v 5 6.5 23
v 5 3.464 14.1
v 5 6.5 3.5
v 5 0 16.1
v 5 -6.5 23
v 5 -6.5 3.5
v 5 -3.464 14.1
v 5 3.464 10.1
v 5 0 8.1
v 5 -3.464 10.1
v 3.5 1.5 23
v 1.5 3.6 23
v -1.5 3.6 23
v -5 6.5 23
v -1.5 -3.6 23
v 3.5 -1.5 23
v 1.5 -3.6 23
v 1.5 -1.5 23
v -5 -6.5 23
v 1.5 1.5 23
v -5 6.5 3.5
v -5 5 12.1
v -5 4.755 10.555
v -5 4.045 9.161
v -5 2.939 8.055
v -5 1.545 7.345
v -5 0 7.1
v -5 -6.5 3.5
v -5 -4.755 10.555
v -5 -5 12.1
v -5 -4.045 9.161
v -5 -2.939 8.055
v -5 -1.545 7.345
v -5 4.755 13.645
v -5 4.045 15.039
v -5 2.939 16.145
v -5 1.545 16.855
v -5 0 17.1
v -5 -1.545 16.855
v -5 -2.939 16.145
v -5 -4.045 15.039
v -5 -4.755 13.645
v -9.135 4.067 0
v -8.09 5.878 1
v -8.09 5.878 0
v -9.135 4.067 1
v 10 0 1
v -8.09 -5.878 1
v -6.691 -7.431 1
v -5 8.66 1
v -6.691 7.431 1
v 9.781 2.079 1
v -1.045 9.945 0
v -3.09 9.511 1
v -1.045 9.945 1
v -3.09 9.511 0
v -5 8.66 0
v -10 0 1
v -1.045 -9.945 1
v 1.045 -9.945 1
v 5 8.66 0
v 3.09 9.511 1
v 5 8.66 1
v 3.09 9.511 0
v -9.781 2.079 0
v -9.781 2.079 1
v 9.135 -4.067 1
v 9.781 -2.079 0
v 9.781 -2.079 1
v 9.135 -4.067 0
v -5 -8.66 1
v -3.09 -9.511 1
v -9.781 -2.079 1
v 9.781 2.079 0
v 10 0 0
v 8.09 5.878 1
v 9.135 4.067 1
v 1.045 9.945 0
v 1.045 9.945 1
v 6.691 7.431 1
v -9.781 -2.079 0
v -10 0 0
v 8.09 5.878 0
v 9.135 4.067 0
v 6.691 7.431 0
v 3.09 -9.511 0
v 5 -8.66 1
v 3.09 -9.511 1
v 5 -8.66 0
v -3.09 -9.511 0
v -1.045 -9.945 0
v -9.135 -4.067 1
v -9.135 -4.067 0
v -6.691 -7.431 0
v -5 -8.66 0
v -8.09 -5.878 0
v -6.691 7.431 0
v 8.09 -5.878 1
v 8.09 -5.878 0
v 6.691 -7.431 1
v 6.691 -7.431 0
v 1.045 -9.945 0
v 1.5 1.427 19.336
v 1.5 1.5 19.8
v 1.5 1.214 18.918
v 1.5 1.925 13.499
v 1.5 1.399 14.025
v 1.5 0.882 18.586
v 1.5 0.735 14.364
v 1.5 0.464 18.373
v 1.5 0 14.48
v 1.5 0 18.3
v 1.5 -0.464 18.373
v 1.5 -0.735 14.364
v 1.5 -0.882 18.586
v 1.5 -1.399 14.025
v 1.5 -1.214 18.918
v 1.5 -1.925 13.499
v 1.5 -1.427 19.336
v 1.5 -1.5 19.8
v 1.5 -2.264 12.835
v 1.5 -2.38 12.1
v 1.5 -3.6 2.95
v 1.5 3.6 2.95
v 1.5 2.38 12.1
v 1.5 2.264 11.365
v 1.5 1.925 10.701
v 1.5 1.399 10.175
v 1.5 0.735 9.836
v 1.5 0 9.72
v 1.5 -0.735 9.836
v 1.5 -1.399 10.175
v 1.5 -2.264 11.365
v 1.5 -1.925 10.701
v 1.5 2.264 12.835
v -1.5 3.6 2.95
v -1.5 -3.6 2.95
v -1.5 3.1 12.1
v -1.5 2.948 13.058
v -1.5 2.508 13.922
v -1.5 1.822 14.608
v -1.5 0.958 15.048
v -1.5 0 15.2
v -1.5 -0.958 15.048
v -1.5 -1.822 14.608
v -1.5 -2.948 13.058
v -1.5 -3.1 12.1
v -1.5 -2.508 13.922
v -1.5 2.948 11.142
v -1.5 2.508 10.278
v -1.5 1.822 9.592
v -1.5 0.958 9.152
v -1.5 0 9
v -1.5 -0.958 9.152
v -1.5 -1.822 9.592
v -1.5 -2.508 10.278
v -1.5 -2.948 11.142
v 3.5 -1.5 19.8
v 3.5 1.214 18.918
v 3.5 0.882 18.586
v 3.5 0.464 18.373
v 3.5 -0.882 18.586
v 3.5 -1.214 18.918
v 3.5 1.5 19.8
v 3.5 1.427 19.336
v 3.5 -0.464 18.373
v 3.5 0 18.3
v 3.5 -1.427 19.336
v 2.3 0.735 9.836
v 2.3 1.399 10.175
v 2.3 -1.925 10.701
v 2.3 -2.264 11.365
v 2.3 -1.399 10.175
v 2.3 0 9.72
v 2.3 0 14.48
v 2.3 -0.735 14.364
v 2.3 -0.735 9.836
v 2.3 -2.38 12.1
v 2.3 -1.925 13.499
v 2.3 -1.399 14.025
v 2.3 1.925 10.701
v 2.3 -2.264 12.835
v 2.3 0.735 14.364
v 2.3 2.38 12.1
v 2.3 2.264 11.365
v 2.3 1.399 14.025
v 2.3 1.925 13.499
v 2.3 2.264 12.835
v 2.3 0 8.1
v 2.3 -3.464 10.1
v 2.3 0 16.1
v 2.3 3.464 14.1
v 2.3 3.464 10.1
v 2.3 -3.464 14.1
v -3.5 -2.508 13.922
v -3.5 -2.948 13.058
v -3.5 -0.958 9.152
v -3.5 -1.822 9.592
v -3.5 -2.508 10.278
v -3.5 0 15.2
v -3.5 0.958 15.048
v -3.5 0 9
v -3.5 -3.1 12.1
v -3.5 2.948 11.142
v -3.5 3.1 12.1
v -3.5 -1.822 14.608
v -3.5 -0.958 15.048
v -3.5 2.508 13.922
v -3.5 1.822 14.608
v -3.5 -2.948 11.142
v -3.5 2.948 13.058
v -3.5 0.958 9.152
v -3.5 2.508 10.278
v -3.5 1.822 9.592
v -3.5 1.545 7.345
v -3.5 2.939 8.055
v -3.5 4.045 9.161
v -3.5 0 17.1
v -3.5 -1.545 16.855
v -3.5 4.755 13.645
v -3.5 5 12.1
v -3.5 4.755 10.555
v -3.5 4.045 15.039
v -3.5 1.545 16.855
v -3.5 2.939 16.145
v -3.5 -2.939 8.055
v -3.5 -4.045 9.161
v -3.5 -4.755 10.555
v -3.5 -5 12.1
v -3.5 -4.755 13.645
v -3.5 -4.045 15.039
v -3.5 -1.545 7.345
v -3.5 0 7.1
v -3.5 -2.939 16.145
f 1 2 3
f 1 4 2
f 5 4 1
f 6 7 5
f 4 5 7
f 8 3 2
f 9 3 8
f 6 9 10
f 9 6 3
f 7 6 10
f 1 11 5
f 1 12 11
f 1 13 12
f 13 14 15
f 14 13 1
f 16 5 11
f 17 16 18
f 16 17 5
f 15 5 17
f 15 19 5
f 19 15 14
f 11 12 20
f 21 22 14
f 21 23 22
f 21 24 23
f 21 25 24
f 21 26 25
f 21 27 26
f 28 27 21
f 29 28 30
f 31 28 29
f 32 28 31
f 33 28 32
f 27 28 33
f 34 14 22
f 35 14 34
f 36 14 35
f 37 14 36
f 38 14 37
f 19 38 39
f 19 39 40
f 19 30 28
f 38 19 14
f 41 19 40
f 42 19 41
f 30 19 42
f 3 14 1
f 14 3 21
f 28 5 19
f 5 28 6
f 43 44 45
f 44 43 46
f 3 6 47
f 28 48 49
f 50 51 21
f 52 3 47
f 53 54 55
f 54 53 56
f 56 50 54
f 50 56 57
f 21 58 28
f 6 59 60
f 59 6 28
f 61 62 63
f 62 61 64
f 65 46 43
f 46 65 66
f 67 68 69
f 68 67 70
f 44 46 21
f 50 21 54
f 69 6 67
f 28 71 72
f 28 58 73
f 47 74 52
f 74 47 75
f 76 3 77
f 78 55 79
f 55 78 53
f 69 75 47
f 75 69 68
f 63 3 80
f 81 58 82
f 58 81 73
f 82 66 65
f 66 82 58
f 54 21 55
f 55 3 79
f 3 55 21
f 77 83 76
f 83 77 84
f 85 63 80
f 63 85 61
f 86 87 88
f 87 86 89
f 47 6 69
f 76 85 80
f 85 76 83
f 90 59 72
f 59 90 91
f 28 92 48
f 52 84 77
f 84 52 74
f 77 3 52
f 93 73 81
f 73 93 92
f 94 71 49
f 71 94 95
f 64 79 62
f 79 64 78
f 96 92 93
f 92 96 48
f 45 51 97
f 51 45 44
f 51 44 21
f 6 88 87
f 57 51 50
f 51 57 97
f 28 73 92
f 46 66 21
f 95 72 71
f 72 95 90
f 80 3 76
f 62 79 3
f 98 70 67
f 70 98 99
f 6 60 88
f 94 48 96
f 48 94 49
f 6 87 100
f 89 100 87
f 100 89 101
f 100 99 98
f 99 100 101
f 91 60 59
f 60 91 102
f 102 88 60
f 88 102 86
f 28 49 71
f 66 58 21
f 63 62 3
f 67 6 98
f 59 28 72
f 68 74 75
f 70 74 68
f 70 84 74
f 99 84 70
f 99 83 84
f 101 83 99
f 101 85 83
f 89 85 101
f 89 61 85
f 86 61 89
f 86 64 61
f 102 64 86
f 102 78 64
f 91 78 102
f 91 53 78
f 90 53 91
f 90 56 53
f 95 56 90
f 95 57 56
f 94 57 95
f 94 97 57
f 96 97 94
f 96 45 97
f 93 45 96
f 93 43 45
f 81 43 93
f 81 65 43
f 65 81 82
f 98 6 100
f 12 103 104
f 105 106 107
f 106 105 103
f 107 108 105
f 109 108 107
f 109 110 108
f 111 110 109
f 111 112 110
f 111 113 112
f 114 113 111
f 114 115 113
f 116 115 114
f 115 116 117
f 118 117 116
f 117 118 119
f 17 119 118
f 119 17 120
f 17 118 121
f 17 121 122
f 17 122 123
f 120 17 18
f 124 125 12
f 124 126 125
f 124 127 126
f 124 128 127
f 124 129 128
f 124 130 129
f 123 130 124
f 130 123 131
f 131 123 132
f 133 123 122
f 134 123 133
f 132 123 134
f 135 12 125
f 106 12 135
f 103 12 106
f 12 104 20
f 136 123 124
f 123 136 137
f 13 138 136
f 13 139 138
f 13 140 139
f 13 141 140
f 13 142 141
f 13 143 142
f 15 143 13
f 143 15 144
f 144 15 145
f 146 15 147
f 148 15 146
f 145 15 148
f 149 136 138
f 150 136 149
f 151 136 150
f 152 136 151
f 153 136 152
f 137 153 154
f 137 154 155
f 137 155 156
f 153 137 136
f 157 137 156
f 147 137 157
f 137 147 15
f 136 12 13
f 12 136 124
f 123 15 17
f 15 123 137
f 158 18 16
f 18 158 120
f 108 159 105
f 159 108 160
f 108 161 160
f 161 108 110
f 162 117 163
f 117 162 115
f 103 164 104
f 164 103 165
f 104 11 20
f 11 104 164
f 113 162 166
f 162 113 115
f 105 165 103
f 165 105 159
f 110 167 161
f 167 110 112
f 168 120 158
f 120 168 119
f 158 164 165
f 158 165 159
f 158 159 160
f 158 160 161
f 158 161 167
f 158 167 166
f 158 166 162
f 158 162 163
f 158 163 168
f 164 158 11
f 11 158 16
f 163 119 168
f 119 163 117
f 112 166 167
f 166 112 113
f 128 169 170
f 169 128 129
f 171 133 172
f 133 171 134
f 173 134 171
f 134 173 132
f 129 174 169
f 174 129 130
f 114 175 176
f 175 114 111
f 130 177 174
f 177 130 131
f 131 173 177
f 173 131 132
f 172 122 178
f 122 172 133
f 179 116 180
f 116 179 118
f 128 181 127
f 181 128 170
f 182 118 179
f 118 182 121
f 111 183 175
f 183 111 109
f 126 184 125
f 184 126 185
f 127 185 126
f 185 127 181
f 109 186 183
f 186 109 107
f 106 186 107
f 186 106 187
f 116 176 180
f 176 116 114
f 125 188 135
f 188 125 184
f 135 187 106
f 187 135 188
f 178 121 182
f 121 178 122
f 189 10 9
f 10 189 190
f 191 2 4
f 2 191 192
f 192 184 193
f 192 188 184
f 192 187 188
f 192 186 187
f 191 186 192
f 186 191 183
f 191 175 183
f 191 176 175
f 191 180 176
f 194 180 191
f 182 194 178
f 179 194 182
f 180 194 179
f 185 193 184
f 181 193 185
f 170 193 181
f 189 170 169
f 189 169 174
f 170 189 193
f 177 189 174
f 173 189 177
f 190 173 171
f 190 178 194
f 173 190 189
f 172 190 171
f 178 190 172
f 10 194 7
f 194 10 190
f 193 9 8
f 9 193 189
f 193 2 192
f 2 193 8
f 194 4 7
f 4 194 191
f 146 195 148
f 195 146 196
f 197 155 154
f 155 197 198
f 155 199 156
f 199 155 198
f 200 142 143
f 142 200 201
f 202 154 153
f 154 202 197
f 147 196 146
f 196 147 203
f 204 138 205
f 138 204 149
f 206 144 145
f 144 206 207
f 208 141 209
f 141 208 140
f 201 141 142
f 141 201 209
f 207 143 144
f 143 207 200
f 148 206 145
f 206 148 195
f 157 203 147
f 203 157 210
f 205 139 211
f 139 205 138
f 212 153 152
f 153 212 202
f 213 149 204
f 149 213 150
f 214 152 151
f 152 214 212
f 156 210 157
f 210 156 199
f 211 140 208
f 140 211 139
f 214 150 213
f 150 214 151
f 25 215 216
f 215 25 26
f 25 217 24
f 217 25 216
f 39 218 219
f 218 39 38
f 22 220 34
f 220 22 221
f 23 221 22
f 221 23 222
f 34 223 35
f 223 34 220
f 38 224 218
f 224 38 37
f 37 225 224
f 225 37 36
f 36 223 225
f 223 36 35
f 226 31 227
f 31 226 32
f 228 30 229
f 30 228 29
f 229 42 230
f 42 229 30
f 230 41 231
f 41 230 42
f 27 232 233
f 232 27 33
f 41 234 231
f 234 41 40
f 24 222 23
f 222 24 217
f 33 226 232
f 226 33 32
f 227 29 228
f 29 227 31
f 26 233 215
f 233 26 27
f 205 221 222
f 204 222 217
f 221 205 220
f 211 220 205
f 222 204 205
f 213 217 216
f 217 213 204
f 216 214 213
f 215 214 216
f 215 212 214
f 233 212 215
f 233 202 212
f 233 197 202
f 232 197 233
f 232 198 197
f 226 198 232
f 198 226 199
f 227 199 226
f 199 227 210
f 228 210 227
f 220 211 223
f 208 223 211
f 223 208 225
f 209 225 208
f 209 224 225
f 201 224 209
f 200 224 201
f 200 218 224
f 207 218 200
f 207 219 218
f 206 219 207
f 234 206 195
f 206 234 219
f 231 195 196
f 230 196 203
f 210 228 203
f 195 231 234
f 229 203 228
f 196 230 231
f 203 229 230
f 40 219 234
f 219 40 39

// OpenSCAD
//messurments of the metal shaft
//shaft=[2.5,7,225] //The metal part;
shaft=[3,7.2,225];   //The hole
base_interface=[10,13,20]; //block of plastic to be printed that holds the shaft.
//The two bolt holes
shaft_hole=4.75;
shaft_hole_ofset=9.1;
// The retaining pin 
shaft_pin=3;
shaft_pin_ofset=16.8;

bolt_head=8;
bolt_shaft=3.8; //maybe don't use this to avoid artifacts
bolt_offset=0.8; //amount of plastic between bolt head and shaft

screw_shaft_dia=6.2;
screw_head_dia=10;
screw_shaft_length=2;
screw_wings_dia=17;

pad=[3, 20]; //thickness, diameter.

module Shaft(){ //CAD model of the metal black shaft of the clamp. The key pin is given as a block to cut a kay way.
difference() {
  cube([shaft[0],shaft[1],shaft[2]+0.1], center = true); // This is the shaft
    union(){ //These are the two bolt holes.
    translate([0,0,(shaft[2]/2-shaft_hole_ofset)]) rotate ([0,90,0]) cylinder(h = 20, d = shaft_hole, center = true, $fn=20);
    translate([0,0,0-(shaft[2]/2-shaft_hole_ofset)]) rotate ([0,90,0]) cylinder(h = 20, d = shaft_hole, center = true, $fn=20);
    }
}
hull() { // These are the two key pins.
    translate([shaft[0]/2-0.1,0,(shaft[2]/2-shaft_pin_ofset)]) rotate ([0,90,0]) cylinder(h = 2.1, d = shaft_pin, center = false, $fn=20);
    translate([shaft[0]/2-0.1,0,0-(shaft[2]/2-shaft_pin_ofset)]) rotate ([0,90,0]) cylinder(h = 2.1, d = shaft_pin, center = false, $fn=20);
}
}


module Bolt(){
// bolt hole
translate([0,0,(shaft_hole_ofset)]) rotate ([0,90,0]) cylinder(h = 20, d = shaft_hole+0.01, center = true, $fn=20);
// bolt head
translate([bolt_offset+(shaft[0]/2),0,(shaft_hole_ofset)]) rotate ([0,90,0]) cylinder(h = 20, d = bolt_head, center = false, $fn=6);    
}

module Wingnut(){ //CAD model that shows clipping.
//Smaller shaft of red screw
translate([0,0,(shaft_hole_ofset)]) rotate ([0,-90,0]) cylinder(h = 20, d = screw_shaft_dia, center = false, $fn=20);
//larger head of red screw
translate([0-screw_shaft_length-(shaft[0]/2),0,(shaft_hole_ofset)]) rotate ([0,-90,0]) cylinder(h = 20, d = screw_head_dia, center = false, $fn=20);
//red wing nut
translate([-(2*screw_shaft_length)-(shaft[0]/2),0,(shaft_hole_ofset)]) rotate ([0,-90,0]) cylinder(h = 20, d = screw_wings_dia, center = false, $fn=20);
}    


 


difference(){
    union(){
//This is the interface block of plastic
        translate([0,0,(pad[0]+(base_interface[2]/2))]) cube(base_interface, center = true );
    hull(){
    translate([0,0,(pad[0])]) cube([base_interface[0],base_interface[1],1], center = true );
    cylinder( h=1, d=pad[1] );
    }
    }
    union(){ // this is the negative for the metal parts.
    translate([0,0,pad[0]+shaft[2]/2]) Shaft();
    translate([0,0,pad[0]]) Bolt();
    translate([0,0,pad[0]])Wingnut();
    }
}
